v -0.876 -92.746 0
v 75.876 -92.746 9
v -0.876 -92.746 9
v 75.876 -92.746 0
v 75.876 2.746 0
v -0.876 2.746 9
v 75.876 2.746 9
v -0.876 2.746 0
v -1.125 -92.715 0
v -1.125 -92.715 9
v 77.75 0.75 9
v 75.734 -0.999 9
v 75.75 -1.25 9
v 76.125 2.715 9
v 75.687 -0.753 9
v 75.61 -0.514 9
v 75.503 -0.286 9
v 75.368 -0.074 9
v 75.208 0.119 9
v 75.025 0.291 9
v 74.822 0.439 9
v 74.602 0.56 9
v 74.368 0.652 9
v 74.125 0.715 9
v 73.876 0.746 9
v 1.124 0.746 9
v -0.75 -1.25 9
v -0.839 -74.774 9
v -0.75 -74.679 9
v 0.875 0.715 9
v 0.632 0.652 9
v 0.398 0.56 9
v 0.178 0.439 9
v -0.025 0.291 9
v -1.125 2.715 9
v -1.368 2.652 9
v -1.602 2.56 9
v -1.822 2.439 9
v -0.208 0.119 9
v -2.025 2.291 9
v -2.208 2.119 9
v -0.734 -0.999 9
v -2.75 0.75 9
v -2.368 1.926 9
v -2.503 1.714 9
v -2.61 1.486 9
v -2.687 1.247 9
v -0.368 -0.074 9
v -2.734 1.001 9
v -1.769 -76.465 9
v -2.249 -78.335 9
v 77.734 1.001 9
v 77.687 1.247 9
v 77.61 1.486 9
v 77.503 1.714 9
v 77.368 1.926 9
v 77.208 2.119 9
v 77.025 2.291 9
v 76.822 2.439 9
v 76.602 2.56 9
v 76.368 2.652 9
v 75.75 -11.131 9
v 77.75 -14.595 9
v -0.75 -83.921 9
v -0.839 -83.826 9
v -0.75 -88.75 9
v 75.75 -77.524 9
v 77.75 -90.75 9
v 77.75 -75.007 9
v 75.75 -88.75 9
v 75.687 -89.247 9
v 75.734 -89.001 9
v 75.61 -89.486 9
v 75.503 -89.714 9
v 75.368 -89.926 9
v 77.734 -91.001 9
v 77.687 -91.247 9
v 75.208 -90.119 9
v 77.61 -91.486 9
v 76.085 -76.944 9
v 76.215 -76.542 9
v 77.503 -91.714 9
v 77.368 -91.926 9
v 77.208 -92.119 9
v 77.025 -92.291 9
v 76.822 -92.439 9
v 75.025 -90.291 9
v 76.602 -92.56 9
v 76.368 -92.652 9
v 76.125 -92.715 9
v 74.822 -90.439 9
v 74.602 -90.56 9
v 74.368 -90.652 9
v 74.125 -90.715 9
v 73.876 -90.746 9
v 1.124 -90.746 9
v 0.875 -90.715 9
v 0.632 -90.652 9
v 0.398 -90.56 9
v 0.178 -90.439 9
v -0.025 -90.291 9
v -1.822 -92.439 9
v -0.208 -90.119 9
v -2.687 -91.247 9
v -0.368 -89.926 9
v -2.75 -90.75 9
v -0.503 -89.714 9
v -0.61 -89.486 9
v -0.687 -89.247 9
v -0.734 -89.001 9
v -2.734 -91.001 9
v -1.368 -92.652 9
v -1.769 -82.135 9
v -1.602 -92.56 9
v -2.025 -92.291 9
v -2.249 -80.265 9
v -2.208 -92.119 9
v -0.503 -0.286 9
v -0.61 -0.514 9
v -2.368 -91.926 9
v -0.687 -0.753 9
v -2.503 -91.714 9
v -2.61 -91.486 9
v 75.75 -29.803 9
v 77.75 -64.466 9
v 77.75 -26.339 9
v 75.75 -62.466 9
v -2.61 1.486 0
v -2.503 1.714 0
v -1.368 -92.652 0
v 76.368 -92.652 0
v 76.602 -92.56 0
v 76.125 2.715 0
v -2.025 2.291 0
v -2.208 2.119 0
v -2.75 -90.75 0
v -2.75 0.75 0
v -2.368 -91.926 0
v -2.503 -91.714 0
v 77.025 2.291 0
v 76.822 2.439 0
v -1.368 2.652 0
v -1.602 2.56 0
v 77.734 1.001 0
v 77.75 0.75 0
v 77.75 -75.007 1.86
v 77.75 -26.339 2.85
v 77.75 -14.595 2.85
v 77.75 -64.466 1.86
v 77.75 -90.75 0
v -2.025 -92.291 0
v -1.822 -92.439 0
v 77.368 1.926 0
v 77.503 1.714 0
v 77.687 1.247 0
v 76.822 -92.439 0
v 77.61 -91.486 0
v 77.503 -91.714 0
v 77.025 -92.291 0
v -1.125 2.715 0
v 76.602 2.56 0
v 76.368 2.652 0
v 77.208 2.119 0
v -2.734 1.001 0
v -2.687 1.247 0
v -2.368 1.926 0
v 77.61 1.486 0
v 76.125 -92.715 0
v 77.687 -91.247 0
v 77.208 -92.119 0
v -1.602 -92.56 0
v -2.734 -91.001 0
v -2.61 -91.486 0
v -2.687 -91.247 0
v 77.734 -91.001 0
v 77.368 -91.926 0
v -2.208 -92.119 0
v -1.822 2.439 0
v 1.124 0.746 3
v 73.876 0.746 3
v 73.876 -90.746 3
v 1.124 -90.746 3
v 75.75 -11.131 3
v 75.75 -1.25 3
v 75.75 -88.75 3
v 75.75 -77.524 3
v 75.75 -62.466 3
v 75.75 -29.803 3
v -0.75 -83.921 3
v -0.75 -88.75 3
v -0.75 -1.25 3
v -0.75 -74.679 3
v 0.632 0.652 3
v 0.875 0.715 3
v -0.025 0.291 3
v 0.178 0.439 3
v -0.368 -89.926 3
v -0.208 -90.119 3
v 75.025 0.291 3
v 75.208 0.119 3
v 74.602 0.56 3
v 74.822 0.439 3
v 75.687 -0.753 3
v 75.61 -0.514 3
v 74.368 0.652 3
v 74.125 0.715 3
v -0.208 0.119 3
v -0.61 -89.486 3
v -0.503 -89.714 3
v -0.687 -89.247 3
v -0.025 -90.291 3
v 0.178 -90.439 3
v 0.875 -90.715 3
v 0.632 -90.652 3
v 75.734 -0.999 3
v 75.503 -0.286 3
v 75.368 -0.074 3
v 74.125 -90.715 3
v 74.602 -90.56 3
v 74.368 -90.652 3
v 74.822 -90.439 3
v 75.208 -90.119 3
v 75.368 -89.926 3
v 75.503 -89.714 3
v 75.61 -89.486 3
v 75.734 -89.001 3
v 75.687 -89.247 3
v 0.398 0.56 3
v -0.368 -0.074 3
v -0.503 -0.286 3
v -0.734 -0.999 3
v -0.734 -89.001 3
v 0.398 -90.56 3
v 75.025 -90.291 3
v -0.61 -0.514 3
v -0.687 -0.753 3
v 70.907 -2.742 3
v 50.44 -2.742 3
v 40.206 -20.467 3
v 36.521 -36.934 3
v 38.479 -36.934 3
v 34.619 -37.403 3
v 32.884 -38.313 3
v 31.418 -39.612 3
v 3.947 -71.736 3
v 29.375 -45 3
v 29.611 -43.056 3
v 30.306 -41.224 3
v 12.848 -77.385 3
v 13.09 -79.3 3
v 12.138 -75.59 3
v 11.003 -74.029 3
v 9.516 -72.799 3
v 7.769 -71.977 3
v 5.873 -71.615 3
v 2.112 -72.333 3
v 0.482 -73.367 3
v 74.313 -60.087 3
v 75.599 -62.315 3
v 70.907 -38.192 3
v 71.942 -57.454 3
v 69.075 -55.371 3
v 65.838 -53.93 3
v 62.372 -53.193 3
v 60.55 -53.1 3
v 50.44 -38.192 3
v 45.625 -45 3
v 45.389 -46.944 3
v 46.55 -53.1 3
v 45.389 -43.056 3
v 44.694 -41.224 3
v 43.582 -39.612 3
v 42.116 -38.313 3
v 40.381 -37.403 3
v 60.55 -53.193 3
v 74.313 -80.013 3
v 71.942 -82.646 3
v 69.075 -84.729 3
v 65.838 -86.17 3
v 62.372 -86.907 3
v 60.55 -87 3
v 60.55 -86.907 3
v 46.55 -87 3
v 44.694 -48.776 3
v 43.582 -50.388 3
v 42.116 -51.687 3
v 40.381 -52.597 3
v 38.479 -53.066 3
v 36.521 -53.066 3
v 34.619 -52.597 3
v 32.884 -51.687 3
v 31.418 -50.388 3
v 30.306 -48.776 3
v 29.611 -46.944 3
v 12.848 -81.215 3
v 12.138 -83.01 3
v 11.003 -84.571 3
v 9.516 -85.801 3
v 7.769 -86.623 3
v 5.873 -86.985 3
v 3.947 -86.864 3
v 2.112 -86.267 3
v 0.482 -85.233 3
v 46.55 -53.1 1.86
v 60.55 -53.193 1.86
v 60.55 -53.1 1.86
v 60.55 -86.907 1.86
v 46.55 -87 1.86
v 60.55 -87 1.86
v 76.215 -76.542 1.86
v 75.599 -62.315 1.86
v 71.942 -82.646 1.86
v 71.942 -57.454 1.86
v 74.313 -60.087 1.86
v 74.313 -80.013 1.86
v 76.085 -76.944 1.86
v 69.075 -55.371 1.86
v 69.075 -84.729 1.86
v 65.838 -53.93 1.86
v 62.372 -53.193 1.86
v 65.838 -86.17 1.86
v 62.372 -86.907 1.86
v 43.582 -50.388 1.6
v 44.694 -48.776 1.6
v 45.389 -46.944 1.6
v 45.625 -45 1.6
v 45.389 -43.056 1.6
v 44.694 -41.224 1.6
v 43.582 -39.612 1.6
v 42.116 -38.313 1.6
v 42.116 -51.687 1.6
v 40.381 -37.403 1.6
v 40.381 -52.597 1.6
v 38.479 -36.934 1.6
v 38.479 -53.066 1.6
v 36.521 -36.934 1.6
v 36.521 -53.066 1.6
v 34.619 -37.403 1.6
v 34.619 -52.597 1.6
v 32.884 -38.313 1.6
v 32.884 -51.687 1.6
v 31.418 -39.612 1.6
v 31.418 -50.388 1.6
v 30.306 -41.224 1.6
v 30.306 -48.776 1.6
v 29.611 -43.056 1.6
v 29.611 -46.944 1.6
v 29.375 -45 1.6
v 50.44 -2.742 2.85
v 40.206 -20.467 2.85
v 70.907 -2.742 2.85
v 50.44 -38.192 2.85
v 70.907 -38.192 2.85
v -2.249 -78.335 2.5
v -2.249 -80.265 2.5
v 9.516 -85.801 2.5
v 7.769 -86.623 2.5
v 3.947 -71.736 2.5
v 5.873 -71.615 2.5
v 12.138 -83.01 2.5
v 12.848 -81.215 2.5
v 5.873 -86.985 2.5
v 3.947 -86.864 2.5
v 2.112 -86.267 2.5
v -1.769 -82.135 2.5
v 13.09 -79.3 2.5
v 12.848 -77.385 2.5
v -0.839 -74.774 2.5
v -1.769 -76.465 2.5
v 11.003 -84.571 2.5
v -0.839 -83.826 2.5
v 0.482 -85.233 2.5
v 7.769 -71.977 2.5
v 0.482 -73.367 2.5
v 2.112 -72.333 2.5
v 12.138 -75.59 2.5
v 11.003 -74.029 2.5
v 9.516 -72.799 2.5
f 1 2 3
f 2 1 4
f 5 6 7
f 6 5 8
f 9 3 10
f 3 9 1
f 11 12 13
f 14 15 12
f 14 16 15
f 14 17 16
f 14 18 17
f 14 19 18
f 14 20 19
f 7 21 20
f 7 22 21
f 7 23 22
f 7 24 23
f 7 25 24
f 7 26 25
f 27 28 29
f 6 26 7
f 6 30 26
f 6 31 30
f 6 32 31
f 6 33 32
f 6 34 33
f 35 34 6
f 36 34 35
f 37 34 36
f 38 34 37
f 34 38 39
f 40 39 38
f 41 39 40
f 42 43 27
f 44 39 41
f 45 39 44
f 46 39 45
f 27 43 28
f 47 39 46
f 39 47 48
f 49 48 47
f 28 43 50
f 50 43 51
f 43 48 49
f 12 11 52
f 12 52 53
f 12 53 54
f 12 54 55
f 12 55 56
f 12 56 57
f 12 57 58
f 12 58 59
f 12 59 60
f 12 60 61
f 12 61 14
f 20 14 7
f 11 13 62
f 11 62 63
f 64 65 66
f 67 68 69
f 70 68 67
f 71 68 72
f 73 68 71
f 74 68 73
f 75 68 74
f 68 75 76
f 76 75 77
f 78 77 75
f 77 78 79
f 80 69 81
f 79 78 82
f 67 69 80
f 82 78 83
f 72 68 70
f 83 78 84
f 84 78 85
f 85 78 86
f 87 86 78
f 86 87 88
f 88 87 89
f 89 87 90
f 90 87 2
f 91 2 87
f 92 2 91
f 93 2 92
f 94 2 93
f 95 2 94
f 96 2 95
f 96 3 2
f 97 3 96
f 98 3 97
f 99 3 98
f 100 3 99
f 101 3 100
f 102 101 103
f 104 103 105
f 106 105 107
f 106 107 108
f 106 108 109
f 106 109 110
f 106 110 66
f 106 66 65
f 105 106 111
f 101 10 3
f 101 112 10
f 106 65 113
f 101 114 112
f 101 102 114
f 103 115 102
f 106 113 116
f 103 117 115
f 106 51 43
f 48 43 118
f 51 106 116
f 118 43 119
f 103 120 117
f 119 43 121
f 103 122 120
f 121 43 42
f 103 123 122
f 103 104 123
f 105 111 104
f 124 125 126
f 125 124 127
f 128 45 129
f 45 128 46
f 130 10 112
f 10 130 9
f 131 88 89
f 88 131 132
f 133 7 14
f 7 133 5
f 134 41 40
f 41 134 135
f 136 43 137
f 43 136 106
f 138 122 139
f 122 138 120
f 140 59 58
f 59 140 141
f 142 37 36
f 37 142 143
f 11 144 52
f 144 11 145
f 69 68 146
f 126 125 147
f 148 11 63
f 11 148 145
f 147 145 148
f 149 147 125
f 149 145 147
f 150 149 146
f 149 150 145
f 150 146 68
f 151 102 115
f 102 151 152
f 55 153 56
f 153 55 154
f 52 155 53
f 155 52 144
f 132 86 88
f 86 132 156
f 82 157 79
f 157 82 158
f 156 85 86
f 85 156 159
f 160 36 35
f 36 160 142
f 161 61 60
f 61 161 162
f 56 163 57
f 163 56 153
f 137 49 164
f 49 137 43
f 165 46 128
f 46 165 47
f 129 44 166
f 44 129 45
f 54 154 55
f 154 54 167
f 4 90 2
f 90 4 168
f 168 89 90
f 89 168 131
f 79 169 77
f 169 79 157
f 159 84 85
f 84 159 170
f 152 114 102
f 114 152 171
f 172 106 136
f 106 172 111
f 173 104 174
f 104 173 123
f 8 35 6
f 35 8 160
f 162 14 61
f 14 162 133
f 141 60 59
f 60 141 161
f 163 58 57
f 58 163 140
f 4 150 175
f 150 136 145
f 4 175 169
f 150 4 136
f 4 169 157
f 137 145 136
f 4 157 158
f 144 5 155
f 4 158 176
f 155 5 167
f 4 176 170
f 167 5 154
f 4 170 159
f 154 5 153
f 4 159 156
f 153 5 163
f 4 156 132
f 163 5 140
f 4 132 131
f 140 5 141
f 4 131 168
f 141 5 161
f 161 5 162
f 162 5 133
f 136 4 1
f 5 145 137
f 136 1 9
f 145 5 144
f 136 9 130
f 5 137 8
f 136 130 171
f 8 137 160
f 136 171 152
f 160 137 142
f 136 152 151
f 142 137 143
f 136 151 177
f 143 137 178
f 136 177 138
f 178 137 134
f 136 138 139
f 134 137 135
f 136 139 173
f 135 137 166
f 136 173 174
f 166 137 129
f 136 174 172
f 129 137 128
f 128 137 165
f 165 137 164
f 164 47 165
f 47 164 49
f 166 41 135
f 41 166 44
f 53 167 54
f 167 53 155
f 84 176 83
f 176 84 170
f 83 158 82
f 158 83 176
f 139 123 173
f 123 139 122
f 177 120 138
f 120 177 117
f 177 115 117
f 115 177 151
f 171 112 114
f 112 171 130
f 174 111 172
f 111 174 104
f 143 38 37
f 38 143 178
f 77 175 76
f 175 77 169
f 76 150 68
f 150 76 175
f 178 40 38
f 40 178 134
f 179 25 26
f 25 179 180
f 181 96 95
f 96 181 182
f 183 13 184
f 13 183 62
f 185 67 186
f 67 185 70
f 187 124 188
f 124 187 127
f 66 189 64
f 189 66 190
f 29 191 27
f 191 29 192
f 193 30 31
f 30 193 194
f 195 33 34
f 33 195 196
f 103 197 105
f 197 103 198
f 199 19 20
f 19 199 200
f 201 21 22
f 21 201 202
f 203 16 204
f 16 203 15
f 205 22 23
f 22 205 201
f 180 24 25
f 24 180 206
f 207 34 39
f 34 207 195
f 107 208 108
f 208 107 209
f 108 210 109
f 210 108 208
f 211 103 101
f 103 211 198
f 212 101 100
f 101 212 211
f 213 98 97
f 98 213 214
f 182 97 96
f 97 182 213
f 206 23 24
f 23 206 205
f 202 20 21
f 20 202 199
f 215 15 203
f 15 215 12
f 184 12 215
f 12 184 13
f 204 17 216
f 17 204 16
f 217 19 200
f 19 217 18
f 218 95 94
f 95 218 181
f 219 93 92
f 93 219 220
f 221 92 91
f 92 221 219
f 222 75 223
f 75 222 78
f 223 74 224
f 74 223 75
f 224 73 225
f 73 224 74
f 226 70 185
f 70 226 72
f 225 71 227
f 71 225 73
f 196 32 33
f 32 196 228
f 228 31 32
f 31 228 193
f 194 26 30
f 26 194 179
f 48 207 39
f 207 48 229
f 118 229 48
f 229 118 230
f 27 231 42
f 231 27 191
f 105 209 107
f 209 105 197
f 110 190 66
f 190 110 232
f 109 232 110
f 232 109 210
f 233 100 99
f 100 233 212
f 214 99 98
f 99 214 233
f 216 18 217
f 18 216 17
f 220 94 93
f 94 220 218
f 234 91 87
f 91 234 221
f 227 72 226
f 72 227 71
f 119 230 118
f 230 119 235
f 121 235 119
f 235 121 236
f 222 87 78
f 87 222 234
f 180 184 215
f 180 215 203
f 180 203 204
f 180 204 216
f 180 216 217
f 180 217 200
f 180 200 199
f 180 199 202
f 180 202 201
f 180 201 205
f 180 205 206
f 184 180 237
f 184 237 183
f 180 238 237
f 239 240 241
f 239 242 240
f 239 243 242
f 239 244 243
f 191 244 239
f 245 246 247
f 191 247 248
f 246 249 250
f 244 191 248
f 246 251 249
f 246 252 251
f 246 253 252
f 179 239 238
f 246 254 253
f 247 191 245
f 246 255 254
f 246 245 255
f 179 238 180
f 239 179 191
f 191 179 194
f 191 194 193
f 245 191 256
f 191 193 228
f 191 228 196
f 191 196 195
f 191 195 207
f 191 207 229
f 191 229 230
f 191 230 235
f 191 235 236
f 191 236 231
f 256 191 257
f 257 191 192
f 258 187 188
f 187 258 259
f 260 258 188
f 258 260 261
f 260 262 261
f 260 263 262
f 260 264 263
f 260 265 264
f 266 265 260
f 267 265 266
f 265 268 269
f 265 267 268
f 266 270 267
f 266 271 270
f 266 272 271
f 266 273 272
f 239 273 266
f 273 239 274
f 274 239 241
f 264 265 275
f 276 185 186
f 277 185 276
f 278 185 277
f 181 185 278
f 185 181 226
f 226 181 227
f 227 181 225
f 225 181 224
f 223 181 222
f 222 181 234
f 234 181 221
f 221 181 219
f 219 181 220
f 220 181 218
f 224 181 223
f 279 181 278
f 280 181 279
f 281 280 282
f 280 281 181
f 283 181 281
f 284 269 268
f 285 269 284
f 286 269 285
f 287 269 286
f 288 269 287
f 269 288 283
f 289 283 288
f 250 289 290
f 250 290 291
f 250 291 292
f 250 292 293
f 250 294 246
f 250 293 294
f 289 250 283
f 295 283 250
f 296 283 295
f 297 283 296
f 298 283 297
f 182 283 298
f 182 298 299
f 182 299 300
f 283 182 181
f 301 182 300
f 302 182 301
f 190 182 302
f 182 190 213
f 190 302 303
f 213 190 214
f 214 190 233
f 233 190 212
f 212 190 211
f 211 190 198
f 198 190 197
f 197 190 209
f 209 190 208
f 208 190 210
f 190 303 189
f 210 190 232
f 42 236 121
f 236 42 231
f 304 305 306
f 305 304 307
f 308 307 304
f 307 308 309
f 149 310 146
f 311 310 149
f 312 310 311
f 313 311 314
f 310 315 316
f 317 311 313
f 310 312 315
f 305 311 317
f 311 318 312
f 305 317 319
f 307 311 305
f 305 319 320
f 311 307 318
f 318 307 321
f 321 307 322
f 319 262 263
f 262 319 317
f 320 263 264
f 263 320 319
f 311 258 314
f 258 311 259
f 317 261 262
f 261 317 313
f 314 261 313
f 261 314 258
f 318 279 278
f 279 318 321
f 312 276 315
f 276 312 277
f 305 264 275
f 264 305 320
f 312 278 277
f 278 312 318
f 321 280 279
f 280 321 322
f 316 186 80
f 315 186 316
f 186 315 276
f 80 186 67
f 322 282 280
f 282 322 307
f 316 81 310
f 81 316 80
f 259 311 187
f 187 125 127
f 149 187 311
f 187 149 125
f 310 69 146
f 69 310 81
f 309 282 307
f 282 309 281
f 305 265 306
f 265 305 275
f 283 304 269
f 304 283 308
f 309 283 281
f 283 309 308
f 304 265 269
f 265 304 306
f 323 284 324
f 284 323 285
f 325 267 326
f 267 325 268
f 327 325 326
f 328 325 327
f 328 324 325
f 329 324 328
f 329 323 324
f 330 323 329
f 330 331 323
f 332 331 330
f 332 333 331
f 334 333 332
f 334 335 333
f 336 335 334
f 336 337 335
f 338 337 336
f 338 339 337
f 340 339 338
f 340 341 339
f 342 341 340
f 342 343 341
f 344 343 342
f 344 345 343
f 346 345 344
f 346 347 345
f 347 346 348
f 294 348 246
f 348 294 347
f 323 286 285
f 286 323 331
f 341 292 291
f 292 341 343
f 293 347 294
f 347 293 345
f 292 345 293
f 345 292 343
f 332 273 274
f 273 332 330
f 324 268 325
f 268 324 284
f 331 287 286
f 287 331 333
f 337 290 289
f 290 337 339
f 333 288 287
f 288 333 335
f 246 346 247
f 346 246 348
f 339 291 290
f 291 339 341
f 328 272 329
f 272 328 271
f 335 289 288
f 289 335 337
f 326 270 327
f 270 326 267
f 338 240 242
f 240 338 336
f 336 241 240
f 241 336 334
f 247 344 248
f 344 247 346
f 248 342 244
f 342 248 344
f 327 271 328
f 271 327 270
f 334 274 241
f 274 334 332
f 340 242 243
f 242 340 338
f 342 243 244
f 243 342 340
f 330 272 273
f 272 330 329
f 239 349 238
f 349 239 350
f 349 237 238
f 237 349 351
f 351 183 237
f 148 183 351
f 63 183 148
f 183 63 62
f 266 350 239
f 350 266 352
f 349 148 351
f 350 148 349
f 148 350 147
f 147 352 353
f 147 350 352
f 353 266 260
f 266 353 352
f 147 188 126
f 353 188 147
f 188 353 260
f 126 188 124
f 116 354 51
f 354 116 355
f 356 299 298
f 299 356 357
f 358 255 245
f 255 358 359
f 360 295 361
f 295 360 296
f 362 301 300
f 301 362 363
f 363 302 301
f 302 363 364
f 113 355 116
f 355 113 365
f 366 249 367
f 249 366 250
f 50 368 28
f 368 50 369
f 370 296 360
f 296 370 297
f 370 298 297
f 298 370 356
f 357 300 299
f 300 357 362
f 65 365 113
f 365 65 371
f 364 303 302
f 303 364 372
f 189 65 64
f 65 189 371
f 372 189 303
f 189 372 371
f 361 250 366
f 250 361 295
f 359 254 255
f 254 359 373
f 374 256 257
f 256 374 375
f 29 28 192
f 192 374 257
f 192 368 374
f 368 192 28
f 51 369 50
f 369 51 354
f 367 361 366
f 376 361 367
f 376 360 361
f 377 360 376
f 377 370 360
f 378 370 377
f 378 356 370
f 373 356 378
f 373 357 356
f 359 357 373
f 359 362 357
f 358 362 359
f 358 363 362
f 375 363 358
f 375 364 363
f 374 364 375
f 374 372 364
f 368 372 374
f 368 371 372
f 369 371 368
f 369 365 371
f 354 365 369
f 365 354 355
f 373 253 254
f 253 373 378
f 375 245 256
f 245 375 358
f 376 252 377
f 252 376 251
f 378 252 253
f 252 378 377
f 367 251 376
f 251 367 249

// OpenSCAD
// file: SquareWithCirclePileLib.scad
module LeftPile(
    wallThickness,
    totalHeight,
    singlePileHeight,
    singlePileWidth,
    singlePileSquareLength,
    singlePileCircleLength,
    pileCount,
    openingSizePercent = .75
){
    pileHeight = (pileCount * singlePileHeight) + .5;
    offset = singlePileCircleLength * .15;

    translate([singlePileCircleLength - offset, wallThickness, totalHeight - pileHeight])
        cube([singlePileSquareLength, singlePileWidth, pileHeight]);
    union() {
        intersection(){
            translate([singlePileWidth/2 - offset, wallThickness + singlePileWidth/2, totalHeight - pileHeight])
                cylinder(pileHeight, d=singlePileWidth);
            translate([0, wallThickness, totalHeight - pileHeight])
                cube([singlePileCircleLength, singlePileWidth, pileHeight]);
        }
        intersection(){
            translate([singlePileWidth/2 - offset, wallThickness + singlePileWidth/2, totalHeight - pileHeight])
                cylinder(pileHeight, d=singlePileWidth);
            translate([-wallThickness, wallThickness, totalHeight - pileHeight])
                cube([singlePileCircleLength, singlePileWidth, pileHeight]);
        }
        translate([4, 4, 0])
            rotate([0, 0, 45])
                translate([wallThickness, wallThickness, totalHeight - pileHeight])
                    cube([singlePileCircleLength, singlePileCircleLength, pileHeight]);
    }
}

module RightPile(
    wallThickness,
    totalHeight,
    singlePileHeight,
    singlePileWidth,
    singlePileSquareLength,
    singlePileCircleLength,
    pileCount,
    openingSizePercent = .75
){
    translate([0, wallThickness + wallThickness + singlePileWidth, 0])
        rotate([0, 0, 180])
            LeftPile(
                wallThickness,
                totalHeight,
                singlePileHeight,
                singlePileWidth,
                singlePileSquareLength,
                singlePileCircleLength,
                pileCount,
                openingSizePercent
            );
}

module BottomPile(
    wallThickness,
    totalHeight,
    singlePileHeight,
    singlePileWidth,
    singlePileSquareLength,
    singlePileCircleLength,
    pileCount,
    openingSizePercent = .75
){
    translate([wallThickness + wallThickness + singlePileWidth, 0, 0])
        rotate([0, 0, 90])
            LeftPile(
                wallThickness,
                totalHeight,
                singlePileHeight,
                singlePileWidth,
                singlePileSquareLength,
                singlePileCircleLength,
                pileCount,
                openingSizePercent
            );
}

module TopPile(
    wallThickness,
    totalHeight,
    singlePileHeight,
    singlePileWidth,
    singlePileSquareLength,
    singlePileCircleLength,
    pileCount,
    openingSizePercent = .75
){
        rotate([0, 0, 270])
            LeftPile(
                wallThickness,
                totalHeight,
                singlePileHeight,
                singlePileWidth,
                singlePileSquareLength,
                singlePileCircleLength,
                pileCount,
                openingSizePercent
            );
}
// file: HexPileLib.scad
module LeftPile(totalHeight, singlePileHeight, singlePileDiameter, pileCount){
    pileHeight = (pileCount * singlePileHeight) + .5;
    offset = singlePileDiameter * .15;
    translate([singlePileDiameter/2 - offset, singlePileDiameter/2, totalHeight - pileHeight])
        cylinder(pileHeight, d=singlePileDiameter, $fn=6);
}

module RightPile(totalHeight, singlePileHeight, singlePileDiameter, pileCount){
    translate([0, singlePileDiameter, 0])
        rotate([0, 0, 180])
            LeftPile(totalHeight, singlePileHeight, singlePileDiameter, pileCount);
}

module BottomPile(totalHeight, singlePileHeight, singlePileDiameter, pileCount){
    translate([singlePileDiameter, 0, 0])
        rotate([0, 0, 90])
            LeftPile(totalHeight, singlePileHeight, singlePileDiameter, pileCount);
}

module TopPile(totalHeight, singlePileHeight, singlePileDiameter, pileCount){
        rotate([0, 0, 270])
            LeftPile(totalHeight, singlePileHeight, singlePileDiameter, pileCount);
}
// file: CaledoniaPointTileLib.scad
include<SquareWithCirclePileLib.scad>
singlePointTileHeight = 1.91;
singlePointTileWidth = 32.9 + 1;
singlePointTileSquareLength = 13 + 1;
singlePointTileCircleLength = 16 + 1;

module LeftPointTile(wallThickness, totalHeight, pointTileCount){
    LeftPile(
        wallThickness,
        totalHeight,
        singlePointTileHeight,
        singlePointTileWidth,
        singlePointTileSquareLength,
        singlePointTileCircleLength,
        pointTileCount);
}

module RightPointTile(wallThickness, totalHeight, pointTileCount){
    RightPile(
        wallThickness,
        totalHeight,
        singlePointTileHeight,
        singlePointTileWidth,
        singlePointTileSquareLength,
        singlePointTileCircleLength,
        pointTileCount);
}

module BottomPointTile(wallThickness, totalHeight, pointTileCount){
    BottomPile(
        wallThickness,
        totalHeight,
        singlePointTileHeight,
        singlePointTileWidth,
        singlePointTileSquareLength,
        singlePointTileCircleLength,
        pointTileCount);
}

module TopPointTile(wallThickness, totalHeight, pointTileCount){
    TopPile(
        wallThickness,
        totalHeight,
        singlePointTileHeight,
        singlePointTileWidth,
        singlePointTileSquareLength,
        singlePointTileCircleLength,
        pointTileCount);
}

function pointTileHeight(pointTileCount) =
    (pointTileCount * singlePointTileHeight) + .5;
// file: CirclePileLib.scad
module LeftPile(totalHeight, singlePileHeight, singlePileDiameter, pileCount){
    pileHeight = (pileCount * singlePileHeight) + .5;
    offset = singlePileDiameter * .15;
    translate([singlePileDiameter/2 - offset, singlePileDiameter/2, totalHeight - pileHeight])
        cylinder(pileHeight, d=singlePileDiameter);
}

module RightPile(totalHeight, singlePileHeight, singlePileDiameter, pileCount){
    translate([0, singlePileDiameter, 0])
        rotate([0, 0, 180])
            LeftPile(totalHeight, singlePileHeight, singlePileDiameter, pileCount);
}

module BottomPile(totalHeight, singlePileHeight, singlePileDiameter, pileCount){
    translate([singlePileDiameter, 0, 0])
        rotate([0, 0, 90])
            LeftPile(totalHeight, singlePileHeight, singlePileDiameter, pileCount);
}

module TopPile(totalHeight, singlePileHeight, singlePileDiameter, pileCount){
        rotate([0, 0, 270])
            LeftPile(totalHeight, singlePileHeight, singlePileDiameter, pileCount);
}
// file: CaledoniaPortsLib.scad
include<HexPileLib.scad>
singlePortHeight = 1.9;
//flat to flat = d = 34.65;
//D = d * 2/rt(3)
d = 34.65 + .8;
D = d * 2/sqrt(3);
singlePortDiameter = D;
//singlePortDiameter =  + .5;

module LeftPort(totalHeight, portCount){
    LeftPile(
        totalHeight,
        singlePortHeight,
        singlePortDiameter,
        portCount);
}

module RightPort(totalHeight, portCount){
    RightPile(
        totalHeight,
        singlePortHeight,
        singlePortDiameter,
        portCount);
}

module BottomPort(totalHeight, portCount){
    BottomPile(
        totalHeight,
        singlePortHeight,
        singlePortDiameter,
        portCount);
}

module TopPort(totalHeight, portCount){
    TopPile(
        totalHeight,
        singlePortHeight,
        singlePortDiameter,
        portCount);
}

function portHeight(portCount) =
    (portCount * singlePortHeight) + .5;

function actualPortWidth() = singlePortDiameter * .85;
// main file
washerDiameter = 16.25;
washerHeight = 1.4;
lidHeight = 3;
height = 0;
wallThickness = 3;
length = 75;
width = 90;
rimThickness = 2;
rimPadding = .75;
rimHeight = 10;
marketMarkerDiameter = 14.9 + .5;
marketMarkerCount = 7;
marketMarkerHeight = 1;
portCount = 3.5;

extra = rimThickness + rimPadding;
totalLength = length + extra * 2;
totalWidth = width + extra * 2;


mirror([0, 90, 0]) {

    difference() {

        translate([-extra, -extra, 0]) {
            difference() {
                $fn=50;
                minkowski()
                {
                  translate([2,2,0])
                    cube([totalLength-4, totalWidth-4, rimHeight - 2]);
                  cylinder(r=2,h=1);
                }
                translate([rimThickness, rimThickness, lidHeight]) {
                    minkowski()
                    {
                      translate([2,2,0])
                        cube([length + rimPadding * 2 - 4, width + rimPadding * 2 - 4, rimHeight - lidHeight]);
                      cylinder(r=2,h=1);
                    }
                }
            }
        }

        //    whitespace between boxes = (total length - (# of boxes * width of boxes)) / (# of boxes + 1)
        //    position of box n = whitespace * n + 1 + width of box * (n)

            translate([length/2,  width/2, lidHeight - washerHeight])
                cylinder(washerHeight, d=washerDiameter);


            Ports();

            MarketMarkers();

            PointTiles();



    }
}

module Ports()
{
    include<CaledoniaPortsLib.scad>;
     translate([length, 0, rimHeight])
        RightPort(height, portCount);
}

module MarketMarkers()
{
    include<CirclePileLib.scad>;
    translate([0, width - (wallThickness + marketMarkerDiameter), rimHeight])
        LeftPile(height, marketMarkerHeight, marketMarkerDiameter, marketMarkerCount);

}

module PointTiles()
{
    include<CaledoniaPointTileLib.scad>;
    translate([length, width - (wallThickness * 2 + singlePointTileWidth), rimHeight])
        RightPointTile(wallThickness, height, 4);
}
